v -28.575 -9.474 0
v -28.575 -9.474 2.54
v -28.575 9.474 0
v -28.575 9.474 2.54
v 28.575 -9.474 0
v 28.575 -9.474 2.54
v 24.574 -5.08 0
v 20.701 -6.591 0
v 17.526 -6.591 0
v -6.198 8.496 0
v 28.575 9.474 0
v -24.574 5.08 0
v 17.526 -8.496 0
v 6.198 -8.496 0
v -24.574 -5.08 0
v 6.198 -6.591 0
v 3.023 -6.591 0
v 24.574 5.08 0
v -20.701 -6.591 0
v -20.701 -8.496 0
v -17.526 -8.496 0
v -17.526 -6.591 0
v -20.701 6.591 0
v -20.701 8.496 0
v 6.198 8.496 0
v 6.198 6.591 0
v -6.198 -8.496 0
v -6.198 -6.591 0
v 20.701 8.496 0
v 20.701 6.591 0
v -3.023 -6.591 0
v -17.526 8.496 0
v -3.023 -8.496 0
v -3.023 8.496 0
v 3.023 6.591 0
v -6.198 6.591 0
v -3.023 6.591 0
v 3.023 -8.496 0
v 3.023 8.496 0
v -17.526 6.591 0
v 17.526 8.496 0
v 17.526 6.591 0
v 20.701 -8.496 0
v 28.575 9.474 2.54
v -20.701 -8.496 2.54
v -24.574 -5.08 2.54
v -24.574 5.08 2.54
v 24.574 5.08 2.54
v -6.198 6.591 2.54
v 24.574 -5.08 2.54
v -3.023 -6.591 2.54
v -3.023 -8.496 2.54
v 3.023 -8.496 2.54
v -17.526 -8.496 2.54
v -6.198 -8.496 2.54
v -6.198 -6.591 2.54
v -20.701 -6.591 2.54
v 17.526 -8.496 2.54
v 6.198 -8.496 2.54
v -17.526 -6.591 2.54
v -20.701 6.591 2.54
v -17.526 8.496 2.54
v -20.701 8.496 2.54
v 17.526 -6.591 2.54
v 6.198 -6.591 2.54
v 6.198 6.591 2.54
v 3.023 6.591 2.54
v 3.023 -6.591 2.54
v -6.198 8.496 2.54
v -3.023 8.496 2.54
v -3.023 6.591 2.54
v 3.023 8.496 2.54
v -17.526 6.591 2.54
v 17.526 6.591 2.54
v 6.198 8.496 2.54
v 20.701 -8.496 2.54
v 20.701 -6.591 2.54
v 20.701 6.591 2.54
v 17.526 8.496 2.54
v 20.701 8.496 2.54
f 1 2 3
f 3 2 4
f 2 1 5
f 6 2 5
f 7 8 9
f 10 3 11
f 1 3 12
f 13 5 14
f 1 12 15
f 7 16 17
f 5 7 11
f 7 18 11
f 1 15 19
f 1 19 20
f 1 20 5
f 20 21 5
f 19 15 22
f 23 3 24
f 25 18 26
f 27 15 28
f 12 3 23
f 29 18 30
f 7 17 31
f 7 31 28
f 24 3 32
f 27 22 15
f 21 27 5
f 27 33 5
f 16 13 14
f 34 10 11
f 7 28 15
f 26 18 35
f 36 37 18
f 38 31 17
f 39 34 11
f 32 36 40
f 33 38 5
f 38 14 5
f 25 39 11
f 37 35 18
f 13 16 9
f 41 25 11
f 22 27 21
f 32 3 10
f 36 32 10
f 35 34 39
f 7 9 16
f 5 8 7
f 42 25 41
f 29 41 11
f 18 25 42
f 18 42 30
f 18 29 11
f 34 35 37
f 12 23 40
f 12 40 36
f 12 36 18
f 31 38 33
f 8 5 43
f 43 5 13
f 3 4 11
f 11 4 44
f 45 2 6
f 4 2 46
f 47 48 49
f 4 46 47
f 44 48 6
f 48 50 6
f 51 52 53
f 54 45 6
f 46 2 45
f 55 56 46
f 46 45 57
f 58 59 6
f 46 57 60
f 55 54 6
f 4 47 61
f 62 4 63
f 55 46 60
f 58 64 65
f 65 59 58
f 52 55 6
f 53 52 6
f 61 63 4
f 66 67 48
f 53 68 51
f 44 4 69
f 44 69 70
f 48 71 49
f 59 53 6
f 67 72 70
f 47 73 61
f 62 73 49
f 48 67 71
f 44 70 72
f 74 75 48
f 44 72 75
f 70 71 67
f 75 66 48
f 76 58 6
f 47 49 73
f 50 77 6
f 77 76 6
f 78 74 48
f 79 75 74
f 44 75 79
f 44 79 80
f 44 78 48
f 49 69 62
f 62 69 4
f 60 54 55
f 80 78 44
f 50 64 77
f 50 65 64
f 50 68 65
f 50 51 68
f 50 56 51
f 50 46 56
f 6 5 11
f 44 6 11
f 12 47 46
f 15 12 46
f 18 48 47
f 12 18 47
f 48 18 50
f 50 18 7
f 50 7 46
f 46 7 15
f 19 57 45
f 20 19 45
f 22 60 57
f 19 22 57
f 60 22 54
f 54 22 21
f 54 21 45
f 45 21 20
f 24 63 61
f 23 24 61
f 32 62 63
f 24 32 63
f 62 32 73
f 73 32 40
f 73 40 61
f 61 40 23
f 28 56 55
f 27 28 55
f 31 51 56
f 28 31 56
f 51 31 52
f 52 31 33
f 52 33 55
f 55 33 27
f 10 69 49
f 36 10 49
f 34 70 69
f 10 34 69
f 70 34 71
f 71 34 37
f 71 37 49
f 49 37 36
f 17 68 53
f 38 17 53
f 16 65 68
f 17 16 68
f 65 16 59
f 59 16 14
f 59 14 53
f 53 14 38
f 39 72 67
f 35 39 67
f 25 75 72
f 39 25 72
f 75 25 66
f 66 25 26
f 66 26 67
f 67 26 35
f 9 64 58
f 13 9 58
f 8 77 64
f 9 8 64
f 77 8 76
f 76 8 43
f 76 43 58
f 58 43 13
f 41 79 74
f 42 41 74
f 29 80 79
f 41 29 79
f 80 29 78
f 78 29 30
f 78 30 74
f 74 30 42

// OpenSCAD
//
// y-axis-shim.scad
//
// Parametric shim to fix bearing sink for Y-axis into part #1116
//

//outsideWidthInches = 0.866;
outsideWidthInches = 0.746; // made narrower to avoid interference with screw.
outwideLengthInches = 2.250;
slotWidthInches = 0.400;
slotLengthInches = 1.935;
tieWidthInches = 0.075;
tieLengthInches = 0.125;
tieSpacingWidthInches = 0.670;
tieSpacingLengthInches = 0.571;
tieDistaceToSlotInches = 0.097;
thicknessInches = 0.100;

tieDistanceFromEdgeInches = 0.191;
tieDistanceFrom1to2Inches = 0.571;
tieDistanceFrom2to3Inches = 0.363;
tieDistanceFrom3to4Inches = tieDistanceFrom1to2Inches;

tieHole1_XInches = -(tieDistanceFrom2to3Inches/2) - tieDistanceFrom1to2Inches;
tieHole2_XInches = -(tieDistanceFrom2to3Inches/2);
tieHole3_XInches =  (tieDistanceFrom2to3Inches/2);
tieHole4_XInches = (tieDistanceFrom2to3Inches/2) + tieDistanceFrom1to2Inches;
tieHoleYInches   = (slotWidthInches/2) + tieDistaceToSlotInches;


// SCAD and STL works in mm however.
mmPerInch = 25.4;

outsideWidth        = mmPerInch * outsideWidthInches;
outwideLength       = mmPerInch * outwideLengthInches;
slotWidth           = mmPerInch * slotWidthInches;
slotLength          = mmPerInch * slotLengthInches;
tieWidth            = mmPerInch * tieWidthInches;
tieLength           = mmPerInch * tieLengthInches;
tieSpacingWidth     = mmPerInch * tieSpacingWidthInches;
tieSpacingLength    = mmPerInch * tieSpacingLengthInches;
tieDistaceToSlot    = mmPerInch * tieDistaceToSlotInches;
thickness           = mmPerInch * thicknessInches;
tieDistanceFromEdge = mmPerInch * tieDistanceFromEdgeInches;
tieDistanceFrom1to2 = mmPerInch * tieDistanceFrom1to2Inches;
tieDistanceFrom2to3 = mmPerInch * tieDistanceFrom2to3Inches;
tieDistanceFrom3to4 = mmPerInch * tieDistanceFrom3to4Inches;


tieHole1_X                = mmPerInch * tieHole1_XInches;
tieHole2_X                = mmPerInch * tieHole2_XInches;
tieHole3_X                = mmPerInch * tieHole3_XInches;
tieHole4_X                = mmPerInch * tieHole4_XInches;
tieHoleY                  = mmPerInch * tieHoleYInches;



difference() {

   // Outside bounds
   translate([0,0,thickness/2]) {
      cube([outwideLength, outsideWidth, thickness], center=true);
   }


   // Bearing slot.
   translate([0,0,thickness/2]) {
      cube([slotLength, slotWidth, thickness], center=true);
   }

   // Holes for tie strap.
   translate([tieHole1_X,tieHoleY,thickness/2]) {
      cube([tieLength, tieWidth, thickness], center=true);
   }
   translate([tieHole2_X,tieHoleY,thickness/2]) {
      cube([tieLength, tieWidth, thickness], center=true);
   }
   translate([tieHole3_X,tieHoleY,thickness/2]) {
      cube([tieLength, tieWidth, thickness], center=true);
   }
   translate([tieHole4_X,tieHoleY,thickness/2]) {
      cube([tieLength, tieWidth, thickness], center=true);
   }
   translate([tieHole1_X,-tieHoleY,thickness/2]) {
      cube([tieLength, tieWidth, thickness], center=true);
   }
   translate([tieHole2_X,-tieHoleY,thickness/2]) {
      cube([tieLength, tieWidth, thickness], center=true);
   }
   translate([tieHole3_X,-tieHoleY,thickness/2]) {
      cube([tieLength, tieWidth, thickness], center=true);
   }
   translate([tieHole4_X,-tieHoleY,thickness/2]) {
      cube([tieLength, tieWidth, thickness], center=true);
   }
}


   
